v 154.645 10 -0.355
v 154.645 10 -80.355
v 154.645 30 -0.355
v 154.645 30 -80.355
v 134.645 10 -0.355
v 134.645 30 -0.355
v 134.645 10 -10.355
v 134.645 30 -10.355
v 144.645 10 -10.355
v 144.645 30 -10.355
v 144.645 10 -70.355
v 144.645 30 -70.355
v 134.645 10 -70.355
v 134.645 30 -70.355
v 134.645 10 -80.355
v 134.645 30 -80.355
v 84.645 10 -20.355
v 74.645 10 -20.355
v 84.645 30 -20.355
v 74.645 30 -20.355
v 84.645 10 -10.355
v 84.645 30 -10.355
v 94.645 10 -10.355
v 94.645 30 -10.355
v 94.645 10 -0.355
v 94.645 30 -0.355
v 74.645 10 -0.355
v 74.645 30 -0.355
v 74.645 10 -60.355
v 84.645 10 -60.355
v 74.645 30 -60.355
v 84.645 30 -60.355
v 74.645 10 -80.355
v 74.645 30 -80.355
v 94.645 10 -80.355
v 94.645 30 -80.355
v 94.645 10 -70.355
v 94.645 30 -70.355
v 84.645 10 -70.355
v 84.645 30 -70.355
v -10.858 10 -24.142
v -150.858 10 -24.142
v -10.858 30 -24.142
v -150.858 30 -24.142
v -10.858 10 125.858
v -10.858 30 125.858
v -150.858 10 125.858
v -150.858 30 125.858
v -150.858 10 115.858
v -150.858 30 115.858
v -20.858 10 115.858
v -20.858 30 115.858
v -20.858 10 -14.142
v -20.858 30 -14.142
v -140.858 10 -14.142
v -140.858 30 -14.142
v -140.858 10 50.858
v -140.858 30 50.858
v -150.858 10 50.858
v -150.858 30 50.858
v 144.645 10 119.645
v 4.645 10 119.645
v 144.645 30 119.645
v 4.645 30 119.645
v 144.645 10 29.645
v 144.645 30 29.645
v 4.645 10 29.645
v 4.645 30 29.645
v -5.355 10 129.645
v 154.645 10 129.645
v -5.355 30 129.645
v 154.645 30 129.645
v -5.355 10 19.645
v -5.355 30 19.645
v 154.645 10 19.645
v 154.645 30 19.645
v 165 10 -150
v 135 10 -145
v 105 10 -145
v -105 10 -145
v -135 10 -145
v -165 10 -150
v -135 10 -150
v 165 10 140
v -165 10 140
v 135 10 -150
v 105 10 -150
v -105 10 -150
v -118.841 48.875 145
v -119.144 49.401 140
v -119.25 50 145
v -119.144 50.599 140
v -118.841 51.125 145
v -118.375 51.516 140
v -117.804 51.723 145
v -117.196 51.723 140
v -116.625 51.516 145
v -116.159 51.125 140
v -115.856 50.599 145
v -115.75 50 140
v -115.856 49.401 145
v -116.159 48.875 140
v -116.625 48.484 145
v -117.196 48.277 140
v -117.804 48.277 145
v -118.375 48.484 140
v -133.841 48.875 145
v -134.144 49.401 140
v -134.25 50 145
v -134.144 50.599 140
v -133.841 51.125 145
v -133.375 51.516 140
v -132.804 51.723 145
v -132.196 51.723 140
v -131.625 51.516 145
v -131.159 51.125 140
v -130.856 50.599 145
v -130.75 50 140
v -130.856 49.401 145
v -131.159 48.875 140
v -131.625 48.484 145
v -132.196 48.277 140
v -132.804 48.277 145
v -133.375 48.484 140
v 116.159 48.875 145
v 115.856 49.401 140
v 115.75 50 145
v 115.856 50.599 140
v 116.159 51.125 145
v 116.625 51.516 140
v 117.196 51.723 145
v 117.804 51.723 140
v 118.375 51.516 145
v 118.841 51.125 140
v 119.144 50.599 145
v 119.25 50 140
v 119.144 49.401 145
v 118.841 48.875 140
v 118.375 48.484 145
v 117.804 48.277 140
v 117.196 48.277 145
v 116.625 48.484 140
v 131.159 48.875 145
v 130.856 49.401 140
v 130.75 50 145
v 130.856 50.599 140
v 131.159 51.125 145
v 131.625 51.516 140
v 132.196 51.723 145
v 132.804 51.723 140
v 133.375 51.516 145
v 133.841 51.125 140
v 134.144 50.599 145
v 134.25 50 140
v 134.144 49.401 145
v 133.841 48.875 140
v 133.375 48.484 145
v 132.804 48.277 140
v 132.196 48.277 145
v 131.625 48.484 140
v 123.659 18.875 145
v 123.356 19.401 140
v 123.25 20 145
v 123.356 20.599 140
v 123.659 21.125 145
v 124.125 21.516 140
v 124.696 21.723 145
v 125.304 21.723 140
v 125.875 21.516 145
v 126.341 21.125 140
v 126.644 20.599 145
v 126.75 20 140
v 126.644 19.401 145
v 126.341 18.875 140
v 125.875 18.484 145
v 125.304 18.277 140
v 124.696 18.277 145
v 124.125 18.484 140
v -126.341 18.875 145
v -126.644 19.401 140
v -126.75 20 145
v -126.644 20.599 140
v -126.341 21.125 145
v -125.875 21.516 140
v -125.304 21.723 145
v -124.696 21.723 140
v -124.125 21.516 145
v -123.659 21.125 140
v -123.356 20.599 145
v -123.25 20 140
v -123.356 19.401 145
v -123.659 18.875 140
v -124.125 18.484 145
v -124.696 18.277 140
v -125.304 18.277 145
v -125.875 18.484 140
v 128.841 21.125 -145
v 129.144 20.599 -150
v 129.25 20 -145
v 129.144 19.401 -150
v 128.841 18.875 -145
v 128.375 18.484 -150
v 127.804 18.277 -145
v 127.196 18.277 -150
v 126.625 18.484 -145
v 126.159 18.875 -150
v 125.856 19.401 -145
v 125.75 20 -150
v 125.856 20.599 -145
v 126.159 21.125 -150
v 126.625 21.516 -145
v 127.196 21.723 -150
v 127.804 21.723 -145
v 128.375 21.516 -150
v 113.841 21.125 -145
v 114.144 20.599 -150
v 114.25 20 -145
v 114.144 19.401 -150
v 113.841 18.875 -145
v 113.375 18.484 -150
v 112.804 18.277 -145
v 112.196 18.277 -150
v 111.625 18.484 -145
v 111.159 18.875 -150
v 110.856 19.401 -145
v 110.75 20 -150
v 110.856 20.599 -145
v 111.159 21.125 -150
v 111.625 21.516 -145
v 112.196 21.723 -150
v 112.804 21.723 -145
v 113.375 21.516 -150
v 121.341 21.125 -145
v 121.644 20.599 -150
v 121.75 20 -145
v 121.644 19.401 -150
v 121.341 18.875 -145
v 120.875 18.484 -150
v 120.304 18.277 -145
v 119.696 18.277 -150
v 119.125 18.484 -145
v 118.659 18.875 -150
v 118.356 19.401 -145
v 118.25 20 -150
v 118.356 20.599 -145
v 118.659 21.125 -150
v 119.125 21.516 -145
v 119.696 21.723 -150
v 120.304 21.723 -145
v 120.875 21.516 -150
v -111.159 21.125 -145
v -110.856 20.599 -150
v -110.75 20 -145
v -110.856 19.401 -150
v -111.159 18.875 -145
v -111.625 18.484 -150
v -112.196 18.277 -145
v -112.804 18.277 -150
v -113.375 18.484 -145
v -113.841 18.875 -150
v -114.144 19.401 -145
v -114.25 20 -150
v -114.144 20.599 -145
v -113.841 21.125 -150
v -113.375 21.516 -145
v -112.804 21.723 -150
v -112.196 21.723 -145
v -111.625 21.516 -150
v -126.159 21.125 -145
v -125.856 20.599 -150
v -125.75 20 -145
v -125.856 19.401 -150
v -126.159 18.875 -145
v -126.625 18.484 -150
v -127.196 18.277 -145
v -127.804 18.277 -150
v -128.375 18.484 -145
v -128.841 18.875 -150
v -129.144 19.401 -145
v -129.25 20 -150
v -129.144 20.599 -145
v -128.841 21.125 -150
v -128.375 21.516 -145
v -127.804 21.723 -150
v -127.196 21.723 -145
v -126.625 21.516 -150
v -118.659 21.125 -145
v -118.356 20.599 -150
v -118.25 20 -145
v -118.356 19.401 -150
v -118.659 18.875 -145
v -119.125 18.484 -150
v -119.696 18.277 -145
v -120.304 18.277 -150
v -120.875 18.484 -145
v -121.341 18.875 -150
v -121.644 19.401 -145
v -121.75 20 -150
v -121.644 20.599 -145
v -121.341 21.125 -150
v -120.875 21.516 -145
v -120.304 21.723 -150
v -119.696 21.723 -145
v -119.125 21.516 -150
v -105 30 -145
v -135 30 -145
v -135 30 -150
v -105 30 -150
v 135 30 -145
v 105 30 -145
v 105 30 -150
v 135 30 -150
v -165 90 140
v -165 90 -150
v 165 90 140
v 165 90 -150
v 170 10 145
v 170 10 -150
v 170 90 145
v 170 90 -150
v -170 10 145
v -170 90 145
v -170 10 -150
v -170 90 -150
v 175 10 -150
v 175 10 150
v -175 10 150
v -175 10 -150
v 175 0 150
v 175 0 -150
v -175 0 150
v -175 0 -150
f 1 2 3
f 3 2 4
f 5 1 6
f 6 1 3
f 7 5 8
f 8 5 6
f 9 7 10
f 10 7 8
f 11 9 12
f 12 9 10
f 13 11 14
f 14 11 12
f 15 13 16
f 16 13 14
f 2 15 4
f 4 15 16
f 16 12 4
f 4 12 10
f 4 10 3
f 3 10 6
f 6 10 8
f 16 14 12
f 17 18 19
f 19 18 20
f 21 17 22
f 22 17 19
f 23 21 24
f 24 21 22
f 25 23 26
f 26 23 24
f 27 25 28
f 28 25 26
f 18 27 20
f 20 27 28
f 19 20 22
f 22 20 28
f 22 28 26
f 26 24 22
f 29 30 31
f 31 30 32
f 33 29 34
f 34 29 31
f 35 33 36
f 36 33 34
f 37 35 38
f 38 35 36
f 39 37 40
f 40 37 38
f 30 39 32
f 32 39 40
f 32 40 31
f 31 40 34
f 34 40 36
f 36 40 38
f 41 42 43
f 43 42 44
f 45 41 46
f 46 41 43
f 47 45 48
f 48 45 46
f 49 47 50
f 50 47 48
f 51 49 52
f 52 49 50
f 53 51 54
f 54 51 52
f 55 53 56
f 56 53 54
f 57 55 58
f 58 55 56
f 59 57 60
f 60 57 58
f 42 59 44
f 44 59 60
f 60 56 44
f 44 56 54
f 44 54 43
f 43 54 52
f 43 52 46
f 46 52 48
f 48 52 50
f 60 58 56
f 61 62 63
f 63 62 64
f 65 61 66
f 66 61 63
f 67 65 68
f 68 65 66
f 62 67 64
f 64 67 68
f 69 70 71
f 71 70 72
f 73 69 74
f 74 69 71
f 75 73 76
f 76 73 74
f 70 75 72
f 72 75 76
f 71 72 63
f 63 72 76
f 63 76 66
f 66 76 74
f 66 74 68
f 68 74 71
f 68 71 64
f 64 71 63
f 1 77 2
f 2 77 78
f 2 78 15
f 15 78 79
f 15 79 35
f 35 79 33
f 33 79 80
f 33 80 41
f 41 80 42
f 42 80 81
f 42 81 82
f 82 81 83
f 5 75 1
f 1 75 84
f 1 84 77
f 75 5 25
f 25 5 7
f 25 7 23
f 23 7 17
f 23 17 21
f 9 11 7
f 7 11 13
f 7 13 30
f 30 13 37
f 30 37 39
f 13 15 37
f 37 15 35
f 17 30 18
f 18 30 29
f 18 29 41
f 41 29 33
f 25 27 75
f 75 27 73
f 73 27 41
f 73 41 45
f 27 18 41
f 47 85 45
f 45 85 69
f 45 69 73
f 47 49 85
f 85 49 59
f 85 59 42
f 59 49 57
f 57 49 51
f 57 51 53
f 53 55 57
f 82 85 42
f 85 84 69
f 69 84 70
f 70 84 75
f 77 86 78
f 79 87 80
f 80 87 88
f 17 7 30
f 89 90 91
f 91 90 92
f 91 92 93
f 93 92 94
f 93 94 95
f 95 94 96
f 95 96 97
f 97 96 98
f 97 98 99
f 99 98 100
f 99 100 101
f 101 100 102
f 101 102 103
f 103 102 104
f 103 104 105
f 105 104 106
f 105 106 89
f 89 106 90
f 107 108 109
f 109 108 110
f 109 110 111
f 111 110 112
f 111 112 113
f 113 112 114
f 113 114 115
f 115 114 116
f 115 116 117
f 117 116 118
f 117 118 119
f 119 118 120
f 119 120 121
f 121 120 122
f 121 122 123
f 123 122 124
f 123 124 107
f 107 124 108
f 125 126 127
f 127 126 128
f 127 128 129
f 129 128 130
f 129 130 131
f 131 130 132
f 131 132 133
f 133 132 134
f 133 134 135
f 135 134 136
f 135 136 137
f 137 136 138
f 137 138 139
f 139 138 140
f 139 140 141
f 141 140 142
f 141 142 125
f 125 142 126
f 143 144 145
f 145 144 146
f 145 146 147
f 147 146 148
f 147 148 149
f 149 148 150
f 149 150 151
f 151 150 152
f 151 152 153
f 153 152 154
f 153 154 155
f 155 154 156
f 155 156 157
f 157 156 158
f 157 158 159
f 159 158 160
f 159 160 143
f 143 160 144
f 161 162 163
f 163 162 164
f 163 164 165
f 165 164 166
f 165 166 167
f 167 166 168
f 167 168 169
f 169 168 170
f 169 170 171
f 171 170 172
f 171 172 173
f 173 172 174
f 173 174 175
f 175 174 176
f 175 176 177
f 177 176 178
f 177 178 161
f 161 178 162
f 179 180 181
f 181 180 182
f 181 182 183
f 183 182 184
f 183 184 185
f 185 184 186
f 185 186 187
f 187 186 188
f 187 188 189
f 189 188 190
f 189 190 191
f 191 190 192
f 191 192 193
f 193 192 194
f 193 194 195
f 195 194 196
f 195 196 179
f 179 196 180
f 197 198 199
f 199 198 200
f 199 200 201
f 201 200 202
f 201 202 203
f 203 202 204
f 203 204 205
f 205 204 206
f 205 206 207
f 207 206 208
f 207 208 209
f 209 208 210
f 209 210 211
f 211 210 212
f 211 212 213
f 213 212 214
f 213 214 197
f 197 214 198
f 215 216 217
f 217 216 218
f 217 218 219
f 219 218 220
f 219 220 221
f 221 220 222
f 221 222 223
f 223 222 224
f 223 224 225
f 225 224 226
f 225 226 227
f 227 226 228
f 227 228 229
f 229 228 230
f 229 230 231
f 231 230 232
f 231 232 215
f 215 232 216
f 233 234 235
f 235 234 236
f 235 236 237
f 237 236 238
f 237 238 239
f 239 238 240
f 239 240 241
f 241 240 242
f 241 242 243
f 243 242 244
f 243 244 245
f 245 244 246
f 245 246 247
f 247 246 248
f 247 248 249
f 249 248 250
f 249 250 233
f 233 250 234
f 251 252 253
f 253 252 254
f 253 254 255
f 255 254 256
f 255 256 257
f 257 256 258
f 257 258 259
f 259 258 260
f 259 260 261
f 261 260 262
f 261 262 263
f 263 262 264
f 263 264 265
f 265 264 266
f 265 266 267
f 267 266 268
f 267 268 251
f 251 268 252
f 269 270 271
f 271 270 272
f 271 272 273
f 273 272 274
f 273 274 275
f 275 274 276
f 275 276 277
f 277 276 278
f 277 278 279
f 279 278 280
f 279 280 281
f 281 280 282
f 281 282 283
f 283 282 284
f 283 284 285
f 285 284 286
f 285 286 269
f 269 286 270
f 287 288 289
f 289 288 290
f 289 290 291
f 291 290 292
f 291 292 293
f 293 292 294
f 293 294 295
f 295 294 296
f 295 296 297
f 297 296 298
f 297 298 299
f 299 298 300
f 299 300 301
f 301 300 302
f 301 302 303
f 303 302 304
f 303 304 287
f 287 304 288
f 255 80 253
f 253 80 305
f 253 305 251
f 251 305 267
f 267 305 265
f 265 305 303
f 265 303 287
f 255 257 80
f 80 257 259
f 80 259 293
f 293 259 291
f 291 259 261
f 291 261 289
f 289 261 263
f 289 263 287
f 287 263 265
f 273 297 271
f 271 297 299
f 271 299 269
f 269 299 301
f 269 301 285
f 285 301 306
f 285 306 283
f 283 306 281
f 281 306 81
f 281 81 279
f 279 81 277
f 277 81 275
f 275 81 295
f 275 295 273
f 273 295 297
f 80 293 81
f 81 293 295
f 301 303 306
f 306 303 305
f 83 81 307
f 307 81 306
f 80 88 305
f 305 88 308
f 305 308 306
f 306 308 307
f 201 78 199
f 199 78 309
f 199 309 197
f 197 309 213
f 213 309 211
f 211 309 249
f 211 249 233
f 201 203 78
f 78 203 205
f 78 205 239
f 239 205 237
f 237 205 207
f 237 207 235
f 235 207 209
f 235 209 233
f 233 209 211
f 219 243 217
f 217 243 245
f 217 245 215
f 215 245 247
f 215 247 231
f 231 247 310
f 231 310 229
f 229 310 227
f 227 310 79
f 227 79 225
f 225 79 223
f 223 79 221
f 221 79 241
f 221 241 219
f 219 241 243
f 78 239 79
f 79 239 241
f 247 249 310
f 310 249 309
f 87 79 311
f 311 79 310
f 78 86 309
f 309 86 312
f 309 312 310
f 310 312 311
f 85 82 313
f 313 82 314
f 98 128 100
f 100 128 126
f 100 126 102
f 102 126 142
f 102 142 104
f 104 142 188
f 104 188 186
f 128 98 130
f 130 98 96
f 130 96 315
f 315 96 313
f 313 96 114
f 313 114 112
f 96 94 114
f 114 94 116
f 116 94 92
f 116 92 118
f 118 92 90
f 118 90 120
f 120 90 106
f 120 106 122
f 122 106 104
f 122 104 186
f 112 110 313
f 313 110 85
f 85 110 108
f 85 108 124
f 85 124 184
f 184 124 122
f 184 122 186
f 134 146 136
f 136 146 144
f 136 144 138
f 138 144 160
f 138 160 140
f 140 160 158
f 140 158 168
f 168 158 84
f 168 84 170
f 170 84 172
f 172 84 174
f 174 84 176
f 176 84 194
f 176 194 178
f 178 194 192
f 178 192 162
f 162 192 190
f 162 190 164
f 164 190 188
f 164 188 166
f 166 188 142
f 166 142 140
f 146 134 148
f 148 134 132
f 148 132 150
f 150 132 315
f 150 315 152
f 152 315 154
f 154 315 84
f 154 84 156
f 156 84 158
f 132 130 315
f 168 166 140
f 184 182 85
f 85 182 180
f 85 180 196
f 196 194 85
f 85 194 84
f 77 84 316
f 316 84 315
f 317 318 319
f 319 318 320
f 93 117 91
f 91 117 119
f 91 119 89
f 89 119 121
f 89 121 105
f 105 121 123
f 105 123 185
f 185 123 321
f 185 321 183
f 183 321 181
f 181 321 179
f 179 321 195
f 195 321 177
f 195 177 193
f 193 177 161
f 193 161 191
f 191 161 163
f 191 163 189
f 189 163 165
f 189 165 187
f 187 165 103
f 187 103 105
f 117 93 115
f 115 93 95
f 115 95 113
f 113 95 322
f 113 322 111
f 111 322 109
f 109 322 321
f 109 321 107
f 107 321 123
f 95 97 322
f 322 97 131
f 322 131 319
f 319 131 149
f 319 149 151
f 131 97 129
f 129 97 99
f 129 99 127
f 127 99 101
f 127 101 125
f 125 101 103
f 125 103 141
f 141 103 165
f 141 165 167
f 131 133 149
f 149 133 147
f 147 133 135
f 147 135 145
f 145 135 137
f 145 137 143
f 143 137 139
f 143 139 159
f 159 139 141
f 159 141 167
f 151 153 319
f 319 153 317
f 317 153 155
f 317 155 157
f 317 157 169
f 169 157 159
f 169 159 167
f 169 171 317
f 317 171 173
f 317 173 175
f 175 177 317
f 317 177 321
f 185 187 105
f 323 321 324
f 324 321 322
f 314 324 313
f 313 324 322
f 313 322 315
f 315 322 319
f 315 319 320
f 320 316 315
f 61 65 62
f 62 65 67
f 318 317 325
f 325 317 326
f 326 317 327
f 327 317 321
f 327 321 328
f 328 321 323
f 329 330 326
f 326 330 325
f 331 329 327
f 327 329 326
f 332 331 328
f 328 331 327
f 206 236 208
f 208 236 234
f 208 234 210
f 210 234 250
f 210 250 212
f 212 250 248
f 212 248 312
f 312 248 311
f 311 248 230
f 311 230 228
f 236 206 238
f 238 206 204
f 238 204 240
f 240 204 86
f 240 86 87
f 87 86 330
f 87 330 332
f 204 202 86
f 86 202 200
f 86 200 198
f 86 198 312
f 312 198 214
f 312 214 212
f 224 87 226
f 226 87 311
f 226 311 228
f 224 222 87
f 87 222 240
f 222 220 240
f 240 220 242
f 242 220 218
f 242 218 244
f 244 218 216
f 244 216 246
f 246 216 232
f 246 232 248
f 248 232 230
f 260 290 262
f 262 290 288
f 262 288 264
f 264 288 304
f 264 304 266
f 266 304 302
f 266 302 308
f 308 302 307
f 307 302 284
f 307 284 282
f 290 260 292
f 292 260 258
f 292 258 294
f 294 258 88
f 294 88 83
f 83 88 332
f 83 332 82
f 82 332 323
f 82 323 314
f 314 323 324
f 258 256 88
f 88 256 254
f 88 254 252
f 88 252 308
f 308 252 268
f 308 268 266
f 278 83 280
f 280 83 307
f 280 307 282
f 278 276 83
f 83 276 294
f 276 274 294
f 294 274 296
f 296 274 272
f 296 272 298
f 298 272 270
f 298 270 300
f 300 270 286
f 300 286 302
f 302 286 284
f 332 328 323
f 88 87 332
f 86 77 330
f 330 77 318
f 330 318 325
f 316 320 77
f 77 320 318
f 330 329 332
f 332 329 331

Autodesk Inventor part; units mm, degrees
ref_plane "YZ Plane" through (0, 0, 0) normal (1, 0, 0) x (0, 1, 0)
ref_plane "XZ Plane" through (0, 0, 0) normal (0, 1, 0) x (-1, 0, 0)
ref_plane "XY Plane" through (0, 0, 0) normal (0, 0, 1) x (1, 0, 0)
sketch "Sketch1" plane through (0, 0, 0) normal (0, 1, 0) x (-1, 0, 0)
  line L0 (-175, 150) -> (175, 150)
  line L1 (175, 150) -> (175, -150)
  line L2 (175, -150) -> (-175, -150)
  line L3 (-175, -150) -> (-175, 150)
  line L4 (-175, 150) -> (175, -150) construction
  line L5 (175, 150) -> (-175, -150) construction
  point P0 (0, 0)
  dimension "d0" = 350
  dimension "d1" = 300
extrude "Extrusion1" add sketch "Sketch1" along normal blind 10
sketch "Sketch2" plane through (0, 10, 0) normal (0, 1, 0) x (1, 0, 0)
  line L0 (175, 150) -> (-175, 150) projected
  line L1 (-175, 150) -> (-170, 150)
  line L2 (-170, 150) -> (-165, 150)
  line L3 (-165, 150) -> (-165, -145)
  line L4 (-165, -145) -> (-170, -145)
  line L5 (-170, -145) -> (-170, 150)
  line L6 (-170, -145) -> (170, -145)
  line L7 (170, -145) -> (170, -140)
  line L8 (170, -140) -> (-170, -140)
  line L9 (-170, -140) -> (-170, -145)
  line L10 (170, -140) -> (165, -140)
  line L11 (165, -140) -> (165, 150)
  line L12 (165, 150) -> (170, 150)
  line L13 (170, 150) -> (170, -140)
  point P0 (0, 0)
  point P1 (-170, 145)
  point P2 (170, 145)
  point P3 (-165, -140)
  point P4 (-165, -145)
  dimension "d5" = 5
  dimension "d6" = 5
  dimension "d7" = 5
extrude "Extrusion2" add sketch "Sketch2" along normal blind 80 contours L13 L8 L11 L0 | L7 L6 L3 L8 | L3 L8 L5 L0 | L3 L4 L5 L8
sketch "Sketch3" plane through (-175, 0, 150) normal (0, 0, 1) x (1, 0, 0)
  line L0 (5, 10) -> (5, 90) projected
  line L1 (5, 90) -> (50, 90)
  line L2 (340, 90) -> (10, 90) projected
  line L3 (50, 90) -> (50, 20)
  line L4 (345, 10) -> (345, 90) projected
  line L5 (345, 90) -> (300, 90)
  line L6 (300, 90) -> (300, 20)
  line L7 (350, 10) -> (345, 10) projected
  line L8 (350, 10) -> (350, 90)
  point P0 (175, 0)
  point P1 (307.5, 50)
  point P2 (292.5, 50)
  point P3 (42.5, 50)
  point P4 (57.5, 50)
  dimension "d10" = 45
  dimension "d11" = 70
  dimension "d12" = 45
  dimension "d13" = 70
sketch "Sketch4" plane through (0, 10, 0) normal (0, 1, 0) x (1, 0, 0)
  line L0 (165, 150) -> (-165, 150) projected
  line L1 (-165, 150) -> (-135, 150)
  line L2 (-135, 150) -> (-105, 150)
  line L3 (-105, 150) -> (-105, 145)
  line L4 (-105, 145) -> (-135, 145)
  line L5 (-135, 145) -> (-135, 150)
  line L6 (165, 150) -> (135, 150)
  line L7 (135, 150) -> (105, 150)
  line L8 (105, 150) -> (105, 145)
  line L9 (105, 145) -> (135, 145)
  line L10 (135, 145) -> (135, 150)
  point P0 (0, 0)
  dimension "d21" = 30
  dimension "d22" = 30
  dimension "d23" = 5
  dimension "d24" = 30
  dimension "d25" = 30
  dimension "d26" = 5
extrude "Extrusion3" add sketch "Sketch4" along normal blind 20
sketch "Sketch5" plane through (175, 0, -150) normal (0, 0, -1) x (-1, 0, 0)
  circle A0 centre (295, 20) radius 1.75 projected
  line L0 (287.5, 20) -> (295, 20)
  point P0 (175, 0)
  point P1 (302.5, 20)
  point P2 (55, 20)
  point P3 (62.5, 20)
  point P4 (47.5, 20)
  dimension "d45" = 7.5
hole "Hole2" at (-120, 20, -150) at (-127.5, 20, -150) at (-112.5, 20, -150) at (120, 20, -150) at (112.5, 20, -150) at (127.5, 20, -150) direction (0, 0, 1) diameter 3.5 depth 10
hole "Hole3" at (-125, 20, 150) at (125, 20, 150) at (132.5, 50, 150) at (117.5, 50, 150) at (-132.5, 50, 150) at (-117.5, 50, 150) direction (0, 0, -1) diameter 3.5 depth 10
sketch "Sketch6" plane through (0, 10, 0) normal (0, 1, 0) x (1, 0, 0)
  line L0 (-165, -140) -> (165, -140) projected
  line L1 (165, -140) -> (215, -140) construction
  line L2 (-5.3553, -129.6447) -> (154.6447, -129.6447)
  line L3 (154.6447, -129.6447) -> (154.6447, -19.6447)
  line L4 (154.6447, -19.6447) -> (-5.3553, -19.6447)
  line L5 (-5.3553, -19.6447) -> (-5.3553, -129.6447)
  line L6 (-5.3553, -129.6447) -> (154.6447, -19.6447) construction
  line L7 (154.6447, -129.6447) -> (-5.3553, -19.6447) construction
  line L8 (4.6447, -119.6447) -> (144.6447, -119.6447)
  line L9 (144.6447, -119.6447) -> (144.6447, -29.6447)
  line L10 (144.6447, -29.6447) -> (4.6447, -29.6447)
  line L11 (4.6447, -29.6447) -> (4.6447, -119.6447)
  line L12 (4.6447, -119.6447) -> (144.6447, -29.6447) construction
  line L13 (144.6447, -119.6447) -> (4.6447, -29.6447) construction
  point P0 (0, 0)
  point P1 (74.6447, -74.6447)
  dimension "d51" = 160
  dimension "d52" = 110
  dimension "d70" = 140
  dimension "d71" = 90
sketch "Sketch7" plane through (0, 10, 0) normal (0, 1, 0) x (1, 0, 0)
  line L0 (-165, -140) -> (165, -140) projected
  line L1 (-165, -140) -> (-150.8579, -125.8579)
  line L2 (-165, -140) -> (-145, -140) construction
  line L3 (-150.8579, -125.8579) -> (-10.8579, -125.8579)
  line L4 (-10.8579, -125.8579) -> (-10.8579, 24.1421)
  line L5 (-10.8579, 24.1421) -> (-150.8579, 24.1421)
  line L6 (-150.8579, 24.1421) -> (-150.8579, -125.8579)
  line L7 (-150.8579, -50.8579) -> (-80.8579, -50.8579)
  line L8 (-140.8579, -115.8579) -> (-20.8579, -115.8579)
  line L9 (-20.8579, -115.8579) -> (-20.8579, 14.1421)
  line L10 (-20.8579, 14.1421) -> (-140.8579, 14.1421)
  line L11 (-140.8579, 14.1421) -> (-140.8579, -115.8579)
  line L12 (-140.8579, -115.8579) -> (-20.8579, 14.1421) construction
  line L13 (-20.8579, -115.8579) -> (-140.8579, 14.1421) construction
  line L14 (-140.8579, -115.8579) -> (-150.8579, -115.8579)
  line L15 (-5.3553, -19.6447) -> (154.6447, -19.6447) projected
  line L16 (154.6447, -19.6447) -> (154.6447, 0.3553)
  line L17 (154.6447, 0.3553) -> (74.6447, 0.3553)
  line L18 (74.6447, 0.3553) -> (74.6447, 80.3553)
  line L19 (74.6447, 80.3553) -> (154.6447, 80.3553)
  line L20 (154.6447, 80.3553) -> (154.6447, 0.3553)
  line L21 (84.6447, 70.3553) -> (144.6447, 70.3553)
  line L22 (144.6447, 70.3553) -> (144.6447, 10.3553)
  line L23 (144.6447, 10.3553) -> (84.6447, 10.3553)
  line L24 (84.6447, 10.3553) -> (84.6447, 70.3553)
  line L25 (84.6447, 70.3553) -> (144.6447, 10.3553) construction
  line L26 (144.6447, 70.3553) -> (84.6447, 10.3553) construction
  line L27 (94.645, 70.3553) -> (134.645, 70.3553)
  line L28 (134.645, 70.3553) -> (134.645, 80.3553)
  line L29 (94.645, 80.3553) -> (94.645, 70.3553)
  line L30 (94.645, 10.3553) -> (134.645, 10.3553)
  line L31 (134.645, 0.3553) -> (94.645, 0.3553)
  line L32 (94.645, 80.3553) -> (134.645, 80.3553)
  line L33 (94.645, 10.3553) -> (94.645, 0.3553)
  line L34 (134.645, 10.3553) -> (94.645, 10.3553)
  line L35 (134.645, 10.3553) -> (134.645, 0.3553)
  line L36 (94.645, 0.3553) -> (134.645, 0.3553)
  line L37 (84.6447, 60.355) -> (84.6447, 20.355)
  line L38 (84.6447, 20.355) -> (74.6447, 20.355)
  line L39 (74.6447, 60.355) -> (84.6447, 60.355)
  point P0 (0, 0)
  point P1 (-140.8579, -50.8579)
  point P2 (114.6447, 40.3553)
  dimension "d55" = 20
  dimension "d56" = 45
  dimension "d57" = 140
  dimension "d58" = 150
  dimension "d59" = 120
  dimension "d60" = 130
  dimension "d61" = 20
  dimension "d62" = 80
  dimension "d63" = 80
  dimension "d75" = 60
  dimension "d76" = 60
  dimension "d77" = 40
  dimension "d78" = 40
extrude "Extrusion6" add sketch "Sketch6" along normal blind 20
extrude "Extrusion7" add sketch "Sketch7" along normal blind 20 contours L6 L14 L8 L9 L10 L11 L7 L5 L4 L3 | L17 L35 L23 L22 L21 L28 L19 L20 | L17 L18 L38 L24 L23 L33 | L29 L21 L24 L39 L18 L19
properties part number "Venstre_bottom"
